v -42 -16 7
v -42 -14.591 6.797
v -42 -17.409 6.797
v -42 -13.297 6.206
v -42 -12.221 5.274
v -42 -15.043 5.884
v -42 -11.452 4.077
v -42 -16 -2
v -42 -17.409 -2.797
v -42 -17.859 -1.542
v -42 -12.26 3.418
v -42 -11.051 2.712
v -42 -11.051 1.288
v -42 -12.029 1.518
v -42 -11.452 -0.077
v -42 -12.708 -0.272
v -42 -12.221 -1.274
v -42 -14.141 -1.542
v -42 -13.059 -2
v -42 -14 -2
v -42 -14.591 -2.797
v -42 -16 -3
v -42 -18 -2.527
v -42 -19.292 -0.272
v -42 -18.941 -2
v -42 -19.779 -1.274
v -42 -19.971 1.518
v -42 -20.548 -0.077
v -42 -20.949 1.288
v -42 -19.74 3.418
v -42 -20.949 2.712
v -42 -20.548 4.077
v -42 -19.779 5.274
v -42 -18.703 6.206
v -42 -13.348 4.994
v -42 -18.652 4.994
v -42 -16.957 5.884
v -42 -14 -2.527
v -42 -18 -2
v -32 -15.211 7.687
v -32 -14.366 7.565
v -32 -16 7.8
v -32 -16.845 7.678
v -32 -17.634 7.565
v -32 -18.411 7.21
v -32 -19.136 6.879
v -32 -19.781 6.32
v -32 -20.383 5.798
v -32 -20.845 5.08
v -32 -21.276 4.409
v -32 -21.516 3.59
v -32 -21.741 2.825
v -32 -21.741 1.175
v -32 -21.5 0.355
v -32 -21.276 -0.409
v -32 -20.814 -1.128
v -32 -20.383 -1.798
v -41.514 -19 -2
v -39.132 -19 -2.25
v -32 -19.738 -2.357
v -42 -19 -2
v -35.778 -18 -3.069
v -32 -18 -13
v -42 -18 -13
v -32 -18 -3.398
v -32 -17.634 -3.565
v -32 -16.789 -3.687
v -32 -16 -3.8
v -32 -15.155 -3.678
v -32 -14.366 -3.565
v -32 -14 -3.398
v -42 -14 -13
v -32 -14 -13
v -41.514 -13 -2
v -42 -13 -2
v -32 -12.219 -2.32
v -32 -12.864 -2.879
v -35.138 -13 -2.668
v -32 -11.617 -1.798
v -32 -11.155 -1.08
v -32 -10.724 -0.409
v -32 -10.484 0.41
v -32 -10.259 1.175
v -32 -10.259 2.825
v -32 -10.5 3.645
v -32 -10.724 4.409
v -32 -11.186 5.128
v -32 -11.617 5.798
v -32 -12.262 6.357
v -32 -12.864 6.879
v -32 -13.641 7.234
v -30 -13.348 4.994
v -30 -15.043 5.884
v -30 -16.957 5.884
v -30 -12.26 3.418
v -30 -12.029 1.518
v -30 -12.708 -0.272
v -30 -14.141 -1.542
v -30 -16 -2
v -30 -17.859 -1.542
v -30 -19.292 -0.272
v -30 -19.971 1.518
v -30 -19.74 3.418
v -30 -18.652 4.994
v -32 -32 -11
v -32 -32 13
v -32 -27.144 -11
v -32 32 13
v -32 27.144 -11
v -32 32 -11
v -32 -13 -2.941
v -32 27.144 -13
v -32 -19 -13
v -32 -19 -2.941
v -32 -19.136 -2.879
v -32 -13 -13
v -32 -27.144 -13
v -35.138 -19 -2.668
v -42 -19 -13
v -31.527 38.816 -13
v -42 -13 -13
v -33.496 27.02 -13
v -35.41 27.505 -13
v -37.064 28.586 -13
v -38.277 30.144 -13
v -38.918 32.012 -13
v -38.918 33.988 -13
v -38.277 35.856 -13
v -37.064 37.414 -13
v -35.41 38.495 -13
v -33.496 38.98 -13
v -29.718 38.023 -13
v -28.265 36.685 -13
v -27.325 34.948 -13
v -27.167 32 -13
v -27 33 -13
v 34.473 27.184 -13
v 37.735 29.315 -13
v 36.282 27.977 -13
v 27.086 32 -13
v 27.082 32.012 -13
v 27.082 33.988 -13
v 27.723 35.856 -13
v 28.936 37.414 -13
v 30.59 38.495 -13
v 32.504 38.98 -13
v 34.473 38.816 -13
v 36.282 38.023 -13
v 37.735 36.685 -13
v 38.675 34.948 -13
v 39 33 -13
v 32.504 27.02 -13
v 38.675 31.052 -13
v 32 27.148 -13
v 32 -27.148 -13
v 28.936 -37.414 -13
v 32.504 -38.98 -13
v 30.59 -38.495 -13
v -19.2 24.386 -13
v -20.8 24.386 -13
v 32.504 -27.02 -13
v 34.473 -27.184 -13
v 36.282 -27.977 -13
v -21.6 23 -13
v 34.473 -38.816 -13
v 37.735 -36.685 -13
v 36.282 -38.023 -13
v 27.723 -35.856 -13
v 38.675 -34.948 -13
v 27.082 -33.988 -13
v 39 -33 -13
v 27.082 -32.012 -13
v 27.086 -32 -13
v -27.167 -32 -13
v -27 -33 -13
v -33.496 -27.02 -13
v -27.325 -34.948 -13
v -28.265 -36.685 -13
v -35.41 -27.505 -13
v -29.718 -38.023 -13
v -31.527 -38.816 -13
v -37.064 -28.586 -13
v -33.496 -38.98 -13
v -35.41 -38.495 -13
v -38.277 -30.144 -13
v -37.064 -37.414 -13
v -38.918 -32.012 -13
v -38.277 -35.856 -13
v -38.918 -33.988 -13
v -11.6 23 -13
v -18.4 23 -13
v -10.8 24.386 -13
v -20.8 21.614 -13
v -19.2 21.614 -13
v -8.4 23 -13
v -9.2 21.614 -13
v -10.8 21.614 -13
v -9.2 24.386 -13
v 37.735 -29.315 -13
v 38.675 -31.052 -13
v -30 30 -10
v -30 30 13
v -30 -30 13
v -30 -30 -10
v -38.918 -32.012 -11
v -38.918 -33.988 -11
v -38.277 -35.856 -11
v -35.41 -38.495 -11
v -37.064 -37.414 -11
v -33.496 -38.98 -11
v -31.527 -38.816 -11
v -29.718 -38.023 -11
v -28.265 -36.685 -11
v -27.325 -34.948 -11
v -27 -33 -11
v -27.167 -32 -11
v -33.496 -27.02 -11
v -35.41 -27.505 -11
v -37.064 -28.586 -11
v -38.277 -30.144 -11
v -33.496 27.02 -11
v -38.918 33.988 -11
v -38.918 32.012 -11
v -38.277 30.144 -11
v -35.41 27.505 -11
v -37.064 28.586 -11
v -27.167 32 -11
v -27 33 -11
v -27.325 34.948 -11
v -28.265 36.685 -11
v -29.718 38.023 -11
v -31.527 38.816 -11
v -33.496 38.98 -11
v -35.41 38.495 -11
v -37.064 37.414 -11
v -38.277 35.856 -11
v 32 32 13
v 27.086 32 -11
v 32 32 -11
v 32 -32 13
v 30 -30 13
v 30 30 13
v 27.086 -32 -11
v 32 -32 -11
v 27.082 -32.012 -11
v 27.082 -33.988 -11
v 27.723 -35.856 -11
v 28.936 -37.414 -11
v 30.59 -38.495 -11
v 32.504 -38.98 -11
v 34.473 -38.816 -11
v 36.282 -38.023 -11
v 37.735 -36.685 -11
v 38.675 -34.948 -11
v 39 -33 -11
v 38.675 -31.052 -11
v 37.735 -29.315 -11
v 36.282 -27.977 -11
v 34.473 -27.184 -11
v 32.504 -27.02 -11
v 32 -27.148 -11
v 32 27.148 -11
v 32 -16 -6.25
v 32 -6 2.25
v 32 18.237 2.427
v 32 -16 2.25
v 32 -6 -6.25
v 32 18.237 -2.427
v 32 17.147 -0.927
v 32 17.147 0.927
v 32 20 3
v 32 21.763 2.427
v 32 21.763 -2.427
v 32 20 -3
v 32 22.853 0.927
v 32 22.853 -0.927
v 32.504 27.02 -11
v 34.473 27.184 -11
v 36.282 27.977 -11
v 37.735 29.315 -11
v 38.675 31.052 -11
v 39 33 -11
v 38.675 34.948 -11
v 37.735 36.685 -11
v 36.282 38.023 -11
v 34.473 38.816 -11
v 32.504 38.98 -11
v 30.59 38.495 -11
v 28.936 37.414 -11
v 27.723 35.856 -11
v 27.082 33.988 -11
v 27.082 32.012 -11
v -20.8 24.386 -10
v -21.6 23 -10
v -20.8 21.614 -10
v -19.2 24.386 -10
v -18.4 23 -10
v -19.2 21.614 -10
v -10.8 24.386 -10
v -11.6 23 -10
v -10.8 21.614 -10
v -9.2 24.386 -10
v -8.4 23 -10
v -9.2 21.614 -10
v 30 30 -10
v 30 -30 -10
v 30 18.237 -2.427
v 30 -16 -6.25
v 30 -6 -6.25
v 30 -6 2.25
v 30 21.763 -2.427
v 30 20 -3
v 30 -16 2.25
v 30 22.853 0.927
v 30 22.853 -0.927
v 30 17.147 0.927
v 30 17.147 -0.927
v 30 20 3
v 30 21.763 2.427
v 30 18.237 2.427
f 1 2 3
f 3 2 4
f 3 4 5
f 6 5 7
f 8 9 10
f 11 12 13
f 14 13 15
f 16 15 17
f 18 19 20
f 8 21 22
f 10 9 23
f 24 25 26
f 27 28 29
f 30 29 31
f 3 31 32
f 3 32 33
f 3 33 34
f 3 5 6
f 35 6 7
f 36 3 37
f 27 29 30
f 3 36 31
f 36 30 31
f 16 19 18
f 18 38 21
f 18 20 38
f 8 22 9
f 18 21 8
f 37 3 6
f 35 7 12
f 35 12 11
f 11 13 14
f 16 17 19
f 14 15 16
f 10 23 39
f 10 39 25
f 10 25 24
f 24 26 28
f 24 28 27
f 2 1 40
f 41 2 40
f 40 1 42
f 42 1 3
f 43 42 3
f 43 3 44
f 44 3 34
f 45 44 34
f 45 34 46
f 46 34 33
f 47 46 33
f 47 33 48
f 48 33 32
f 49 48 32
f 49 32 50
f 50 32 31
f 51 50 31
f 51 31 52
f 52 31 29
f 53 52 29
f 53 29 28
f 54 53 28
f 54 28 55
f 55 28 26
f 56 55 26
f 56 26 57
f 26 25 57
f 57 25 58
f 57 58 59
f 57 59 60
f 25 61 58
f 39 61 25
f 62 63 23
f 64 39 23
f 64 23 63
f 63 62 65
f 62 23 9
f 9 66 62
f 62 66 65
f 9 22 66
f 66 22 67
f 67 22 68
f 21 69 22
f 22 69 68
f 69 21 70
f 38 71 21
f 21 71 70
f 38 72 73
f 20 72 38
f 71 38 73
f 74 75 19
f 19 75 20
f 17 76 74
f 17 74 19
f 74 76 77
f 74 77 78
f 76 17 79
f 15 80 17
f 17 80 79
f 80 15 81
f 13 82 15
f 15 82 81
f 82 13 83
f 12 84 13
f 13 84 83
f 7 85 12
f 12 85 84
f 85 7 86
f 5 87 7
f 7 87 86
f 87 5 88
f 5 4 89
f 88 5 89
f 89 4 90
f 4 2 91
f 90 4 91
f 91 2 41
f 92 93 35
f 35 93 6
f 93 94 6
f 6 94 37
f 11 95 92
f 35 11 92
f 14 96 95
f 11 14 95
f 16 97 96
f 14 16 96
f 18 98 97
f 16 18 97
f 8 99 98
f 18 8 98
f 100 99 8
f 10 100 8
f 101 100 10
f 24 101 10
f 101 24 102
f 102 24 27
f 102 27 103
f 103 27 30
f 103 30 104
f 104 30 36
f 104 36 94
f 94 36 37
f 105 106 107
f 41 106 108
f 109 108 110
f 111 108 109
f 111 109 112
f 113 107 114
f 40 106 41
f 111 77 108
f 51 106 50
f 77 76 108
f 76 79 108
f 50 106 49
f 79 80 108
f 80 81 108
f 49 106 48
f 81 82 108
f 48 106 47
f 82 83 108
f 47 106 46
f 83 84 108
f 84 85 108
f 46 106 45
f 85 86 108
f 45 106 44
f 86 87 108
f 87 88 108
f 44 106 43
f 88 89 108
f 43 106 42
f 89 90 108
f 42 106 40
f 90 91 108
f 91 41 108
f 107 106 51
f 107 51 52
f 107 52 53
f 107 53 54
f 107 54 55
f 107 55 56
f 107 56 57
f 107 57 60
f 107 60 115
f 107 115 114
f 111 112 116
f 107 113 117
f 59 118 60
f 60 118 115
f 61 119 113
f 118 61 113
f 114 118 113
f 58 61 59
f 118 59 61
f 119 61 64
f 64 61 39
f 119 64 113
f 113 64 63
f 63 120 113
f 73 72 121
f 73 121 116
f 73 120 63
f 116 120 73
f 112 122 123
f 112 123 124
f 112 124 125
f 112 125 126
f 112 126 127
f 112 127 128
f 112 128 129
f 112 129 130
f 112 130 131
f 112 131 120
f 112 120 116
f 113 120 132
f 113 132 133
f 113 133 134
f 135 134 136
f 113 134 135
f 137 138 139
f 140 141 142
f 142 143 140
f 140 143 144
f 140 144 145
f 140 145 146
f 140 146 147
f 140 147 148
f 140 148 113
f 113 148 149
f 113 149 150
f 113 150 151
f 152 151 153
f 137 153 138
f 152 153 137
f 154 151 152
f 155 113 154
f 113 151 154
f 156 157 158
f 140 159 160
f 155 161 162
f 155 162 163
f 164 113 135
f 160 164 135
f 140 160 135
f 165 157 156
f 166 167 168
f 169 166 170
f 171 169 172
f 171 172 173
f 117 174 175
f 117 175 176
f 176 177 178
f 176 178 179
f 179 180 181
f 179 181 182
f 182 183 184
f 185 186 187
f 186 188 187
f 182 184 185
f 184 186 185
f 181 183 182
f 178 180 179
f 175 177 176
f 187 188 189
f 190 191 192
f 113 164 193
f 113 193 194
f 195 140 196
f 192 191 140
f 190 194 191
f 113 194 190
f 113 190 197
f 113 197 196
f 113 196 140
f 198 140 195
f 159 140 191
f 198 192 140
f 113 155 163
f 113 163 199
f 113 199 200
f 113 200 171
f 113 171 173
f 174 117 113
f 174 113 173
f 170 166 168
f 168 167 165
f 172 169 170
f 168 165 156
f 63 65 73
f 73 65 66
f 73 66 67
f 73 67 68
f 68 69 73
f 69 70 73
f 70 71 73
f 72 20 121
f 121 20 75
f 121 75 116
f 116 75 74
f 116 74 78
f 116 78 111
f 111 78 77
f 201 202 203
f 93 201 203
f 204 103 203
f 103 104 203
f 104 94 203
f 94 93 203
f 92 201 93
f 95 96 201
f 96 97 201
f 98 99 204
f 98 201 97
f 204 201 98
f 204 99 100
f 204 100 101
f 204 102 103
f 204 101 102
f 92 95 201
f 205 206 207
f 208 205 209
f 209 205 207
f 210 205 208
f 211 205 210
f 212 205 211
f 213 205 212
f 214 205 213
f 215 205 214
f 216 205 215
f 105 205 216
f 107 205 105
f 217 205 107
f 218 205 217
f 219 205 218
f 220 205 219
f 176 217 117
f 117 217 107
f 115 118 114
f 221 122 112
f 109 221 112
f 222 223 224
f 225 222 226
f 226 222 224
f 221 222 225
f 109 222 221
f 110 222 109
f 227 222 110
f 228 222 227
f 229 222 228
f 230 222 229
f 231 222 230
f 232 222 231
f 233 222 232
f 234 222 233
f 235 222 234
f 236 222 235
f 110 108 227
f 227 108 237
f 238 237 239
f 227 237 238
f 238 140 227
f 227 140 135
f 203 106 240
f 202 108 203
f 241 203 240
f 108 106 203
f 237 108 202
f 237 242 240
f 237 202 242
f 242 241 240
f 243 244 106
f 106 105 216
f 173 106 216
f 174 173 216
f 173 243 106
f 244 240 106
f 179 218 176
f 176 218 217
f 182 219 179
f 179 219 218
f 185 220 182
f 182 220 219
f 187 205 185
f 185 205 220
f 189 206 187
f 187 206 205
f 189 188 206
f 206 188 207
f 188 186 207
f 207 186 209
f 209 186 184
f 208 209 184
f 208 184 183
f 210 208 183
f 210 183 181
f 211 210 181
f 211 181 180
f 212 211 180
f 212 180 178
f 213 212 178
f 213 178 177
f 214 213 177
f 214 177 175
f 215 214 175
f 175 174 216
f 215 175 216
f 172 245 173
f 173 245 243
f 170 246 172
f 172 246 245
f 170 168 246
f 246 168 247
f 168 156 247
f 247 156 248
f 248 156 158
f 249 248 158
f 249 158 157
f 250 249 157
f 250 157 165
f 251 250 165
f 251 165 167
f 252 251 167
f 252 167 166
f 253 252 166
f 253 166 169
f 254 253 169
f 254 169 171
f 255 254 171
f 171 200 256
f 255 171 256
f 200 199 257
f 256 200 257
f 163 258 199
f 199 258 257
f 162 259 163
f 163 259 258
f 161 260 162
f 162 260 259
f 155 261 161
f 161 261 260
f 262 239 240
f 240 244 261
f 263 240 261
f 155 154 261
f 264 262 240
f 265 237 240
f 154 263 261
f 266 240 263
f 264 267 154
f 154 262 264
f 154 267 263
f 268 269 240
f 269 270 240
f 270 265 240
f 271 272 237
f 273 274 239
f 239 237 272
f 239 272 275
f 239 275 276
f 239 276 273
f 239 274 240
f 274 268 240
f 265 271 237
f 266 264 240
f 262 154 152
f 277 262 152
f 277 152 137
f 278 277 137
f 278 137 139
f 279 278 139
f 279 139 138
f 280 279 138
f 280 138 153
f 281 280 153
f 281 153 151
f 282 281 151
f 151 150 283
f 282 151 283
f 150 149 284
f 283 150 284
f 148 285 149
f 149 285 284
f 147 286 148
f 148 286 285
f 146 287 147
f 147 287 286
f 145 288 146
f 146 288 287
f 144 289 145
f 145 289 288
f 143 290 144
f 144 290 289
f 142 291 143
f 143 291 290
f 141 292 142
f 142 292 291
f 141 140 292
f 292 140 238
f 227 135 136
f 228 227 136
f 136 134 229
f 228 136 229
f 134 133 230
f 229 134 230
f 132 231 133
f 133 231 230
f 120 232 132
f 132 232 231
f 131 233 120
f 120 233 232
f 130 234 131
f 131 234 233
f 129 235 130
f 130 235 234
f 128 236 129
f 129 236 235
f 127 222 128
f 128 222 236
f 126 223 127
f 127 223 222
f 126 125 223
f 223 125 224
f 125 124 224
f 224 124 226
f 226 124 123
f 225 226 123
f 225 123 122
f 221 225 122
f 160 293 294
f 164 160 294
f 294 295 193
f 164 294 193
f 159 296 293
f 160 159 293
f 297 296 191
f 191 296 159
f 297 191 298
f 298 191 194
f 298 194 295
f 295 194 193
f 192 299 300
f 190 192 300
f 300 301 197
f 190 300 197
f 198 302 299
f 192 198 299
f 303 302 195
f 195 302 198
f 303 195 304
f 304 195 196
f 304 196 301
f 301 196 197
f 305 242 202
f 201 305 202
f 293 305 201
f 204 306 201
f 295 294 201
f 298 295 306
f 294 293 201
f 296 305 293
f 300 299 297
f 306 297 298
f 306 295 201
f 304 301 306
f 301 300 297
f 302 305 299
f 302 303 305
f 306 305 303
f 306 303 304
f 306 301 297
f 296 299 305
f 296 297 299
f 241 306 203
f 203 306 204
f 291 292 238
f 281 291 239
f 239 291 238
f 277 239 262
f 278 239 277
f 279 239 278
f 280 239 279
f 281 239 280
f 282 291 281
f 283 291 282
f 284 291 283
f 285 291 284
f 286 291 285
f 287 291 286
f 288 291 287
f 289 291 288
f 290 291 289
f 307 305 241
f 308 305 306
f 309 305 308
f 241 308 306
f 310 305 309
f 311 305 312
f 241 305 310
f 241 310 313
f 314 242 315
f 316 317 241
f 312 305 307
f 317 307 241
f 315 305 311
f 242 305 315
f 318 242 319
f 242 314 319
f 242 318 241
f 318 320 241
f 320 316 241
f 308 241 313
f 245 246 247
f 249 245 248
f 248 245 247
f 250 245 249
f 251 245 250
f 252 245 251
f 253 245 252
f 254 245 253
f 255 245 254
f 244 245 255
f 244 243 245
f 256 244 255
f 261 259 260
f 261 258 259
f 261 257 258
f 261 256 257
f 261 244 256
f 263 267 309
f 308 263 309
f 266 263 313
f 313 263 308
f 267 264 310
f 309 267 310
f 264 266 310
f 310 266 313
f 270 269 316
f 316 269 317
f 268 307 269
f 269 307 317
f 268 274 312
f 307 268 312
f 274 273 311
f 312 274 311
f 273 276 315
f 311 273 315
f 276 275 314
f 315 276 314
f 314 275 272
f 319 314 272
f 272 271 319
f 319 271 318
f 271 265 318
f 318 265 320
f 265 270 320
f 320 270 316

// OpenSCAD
difference(){
	difference(){
		difference(){
			difference(){
				// MAIN BOX
					difference() {
						union(){
							cube([64,64,26], true);
							// MOUNTH TUBE
							translate([-42,-16,2]){
								rotate([00,90,0]) {
									cylinder(25,5,7);
								}
							}
						}
						translate([0,0,2]){cube([60,60,24], true);}
					}
				// MQ303A
				translate([-48,-16,2]){
					rotate([0,90,0]) {
						cylinder(30,4,4);
					}
				}
			}
			//POWER SWITCH
			translate([25,20,0]){
				rotate([0,90,0]) {
					cylinder(10,3,3);
				}
				}
		}
		//MINI USB BATTERY CHARGER
		translate([28,-11,-2]){
			cube([11,10,8.5],true);
		}
	}
	// LEDS
	union() {
		// POWER LED
		translate([-20,23,-15]) {
			cylinder(10,1.6,1.6);
		}			
		// BLUETOOTH LED
		translate([-10,23,-15]) {
			cylinder(10,1.6,1.6);
		}			
	}
}

//ADDITIONAL FEATURES TO HELP PRINTING AND AVOID WARPING
withsupport();
withmouseears();




// SUPPORTS FOR PRINTING
module withsupport() {
	translate([-42,-14,-13]) {
		cube([10,1,11]);
	}
	translate([-42,-19,-13]) {
		cube([10,1,11]);
	}
}



// MOUSE EARS TO HELP AVOID WARPING
module withmouseears() {
	mouseear(33,33,-13);
	mouseear(33,-33,-13);
	mouseear(-33,-33,-13);
	mouseear(-33,33,-13);
}



module mouseear(x,y,z) {
	translate([x,y,z]) {
		cylinder(2,6,6);
	}
}
